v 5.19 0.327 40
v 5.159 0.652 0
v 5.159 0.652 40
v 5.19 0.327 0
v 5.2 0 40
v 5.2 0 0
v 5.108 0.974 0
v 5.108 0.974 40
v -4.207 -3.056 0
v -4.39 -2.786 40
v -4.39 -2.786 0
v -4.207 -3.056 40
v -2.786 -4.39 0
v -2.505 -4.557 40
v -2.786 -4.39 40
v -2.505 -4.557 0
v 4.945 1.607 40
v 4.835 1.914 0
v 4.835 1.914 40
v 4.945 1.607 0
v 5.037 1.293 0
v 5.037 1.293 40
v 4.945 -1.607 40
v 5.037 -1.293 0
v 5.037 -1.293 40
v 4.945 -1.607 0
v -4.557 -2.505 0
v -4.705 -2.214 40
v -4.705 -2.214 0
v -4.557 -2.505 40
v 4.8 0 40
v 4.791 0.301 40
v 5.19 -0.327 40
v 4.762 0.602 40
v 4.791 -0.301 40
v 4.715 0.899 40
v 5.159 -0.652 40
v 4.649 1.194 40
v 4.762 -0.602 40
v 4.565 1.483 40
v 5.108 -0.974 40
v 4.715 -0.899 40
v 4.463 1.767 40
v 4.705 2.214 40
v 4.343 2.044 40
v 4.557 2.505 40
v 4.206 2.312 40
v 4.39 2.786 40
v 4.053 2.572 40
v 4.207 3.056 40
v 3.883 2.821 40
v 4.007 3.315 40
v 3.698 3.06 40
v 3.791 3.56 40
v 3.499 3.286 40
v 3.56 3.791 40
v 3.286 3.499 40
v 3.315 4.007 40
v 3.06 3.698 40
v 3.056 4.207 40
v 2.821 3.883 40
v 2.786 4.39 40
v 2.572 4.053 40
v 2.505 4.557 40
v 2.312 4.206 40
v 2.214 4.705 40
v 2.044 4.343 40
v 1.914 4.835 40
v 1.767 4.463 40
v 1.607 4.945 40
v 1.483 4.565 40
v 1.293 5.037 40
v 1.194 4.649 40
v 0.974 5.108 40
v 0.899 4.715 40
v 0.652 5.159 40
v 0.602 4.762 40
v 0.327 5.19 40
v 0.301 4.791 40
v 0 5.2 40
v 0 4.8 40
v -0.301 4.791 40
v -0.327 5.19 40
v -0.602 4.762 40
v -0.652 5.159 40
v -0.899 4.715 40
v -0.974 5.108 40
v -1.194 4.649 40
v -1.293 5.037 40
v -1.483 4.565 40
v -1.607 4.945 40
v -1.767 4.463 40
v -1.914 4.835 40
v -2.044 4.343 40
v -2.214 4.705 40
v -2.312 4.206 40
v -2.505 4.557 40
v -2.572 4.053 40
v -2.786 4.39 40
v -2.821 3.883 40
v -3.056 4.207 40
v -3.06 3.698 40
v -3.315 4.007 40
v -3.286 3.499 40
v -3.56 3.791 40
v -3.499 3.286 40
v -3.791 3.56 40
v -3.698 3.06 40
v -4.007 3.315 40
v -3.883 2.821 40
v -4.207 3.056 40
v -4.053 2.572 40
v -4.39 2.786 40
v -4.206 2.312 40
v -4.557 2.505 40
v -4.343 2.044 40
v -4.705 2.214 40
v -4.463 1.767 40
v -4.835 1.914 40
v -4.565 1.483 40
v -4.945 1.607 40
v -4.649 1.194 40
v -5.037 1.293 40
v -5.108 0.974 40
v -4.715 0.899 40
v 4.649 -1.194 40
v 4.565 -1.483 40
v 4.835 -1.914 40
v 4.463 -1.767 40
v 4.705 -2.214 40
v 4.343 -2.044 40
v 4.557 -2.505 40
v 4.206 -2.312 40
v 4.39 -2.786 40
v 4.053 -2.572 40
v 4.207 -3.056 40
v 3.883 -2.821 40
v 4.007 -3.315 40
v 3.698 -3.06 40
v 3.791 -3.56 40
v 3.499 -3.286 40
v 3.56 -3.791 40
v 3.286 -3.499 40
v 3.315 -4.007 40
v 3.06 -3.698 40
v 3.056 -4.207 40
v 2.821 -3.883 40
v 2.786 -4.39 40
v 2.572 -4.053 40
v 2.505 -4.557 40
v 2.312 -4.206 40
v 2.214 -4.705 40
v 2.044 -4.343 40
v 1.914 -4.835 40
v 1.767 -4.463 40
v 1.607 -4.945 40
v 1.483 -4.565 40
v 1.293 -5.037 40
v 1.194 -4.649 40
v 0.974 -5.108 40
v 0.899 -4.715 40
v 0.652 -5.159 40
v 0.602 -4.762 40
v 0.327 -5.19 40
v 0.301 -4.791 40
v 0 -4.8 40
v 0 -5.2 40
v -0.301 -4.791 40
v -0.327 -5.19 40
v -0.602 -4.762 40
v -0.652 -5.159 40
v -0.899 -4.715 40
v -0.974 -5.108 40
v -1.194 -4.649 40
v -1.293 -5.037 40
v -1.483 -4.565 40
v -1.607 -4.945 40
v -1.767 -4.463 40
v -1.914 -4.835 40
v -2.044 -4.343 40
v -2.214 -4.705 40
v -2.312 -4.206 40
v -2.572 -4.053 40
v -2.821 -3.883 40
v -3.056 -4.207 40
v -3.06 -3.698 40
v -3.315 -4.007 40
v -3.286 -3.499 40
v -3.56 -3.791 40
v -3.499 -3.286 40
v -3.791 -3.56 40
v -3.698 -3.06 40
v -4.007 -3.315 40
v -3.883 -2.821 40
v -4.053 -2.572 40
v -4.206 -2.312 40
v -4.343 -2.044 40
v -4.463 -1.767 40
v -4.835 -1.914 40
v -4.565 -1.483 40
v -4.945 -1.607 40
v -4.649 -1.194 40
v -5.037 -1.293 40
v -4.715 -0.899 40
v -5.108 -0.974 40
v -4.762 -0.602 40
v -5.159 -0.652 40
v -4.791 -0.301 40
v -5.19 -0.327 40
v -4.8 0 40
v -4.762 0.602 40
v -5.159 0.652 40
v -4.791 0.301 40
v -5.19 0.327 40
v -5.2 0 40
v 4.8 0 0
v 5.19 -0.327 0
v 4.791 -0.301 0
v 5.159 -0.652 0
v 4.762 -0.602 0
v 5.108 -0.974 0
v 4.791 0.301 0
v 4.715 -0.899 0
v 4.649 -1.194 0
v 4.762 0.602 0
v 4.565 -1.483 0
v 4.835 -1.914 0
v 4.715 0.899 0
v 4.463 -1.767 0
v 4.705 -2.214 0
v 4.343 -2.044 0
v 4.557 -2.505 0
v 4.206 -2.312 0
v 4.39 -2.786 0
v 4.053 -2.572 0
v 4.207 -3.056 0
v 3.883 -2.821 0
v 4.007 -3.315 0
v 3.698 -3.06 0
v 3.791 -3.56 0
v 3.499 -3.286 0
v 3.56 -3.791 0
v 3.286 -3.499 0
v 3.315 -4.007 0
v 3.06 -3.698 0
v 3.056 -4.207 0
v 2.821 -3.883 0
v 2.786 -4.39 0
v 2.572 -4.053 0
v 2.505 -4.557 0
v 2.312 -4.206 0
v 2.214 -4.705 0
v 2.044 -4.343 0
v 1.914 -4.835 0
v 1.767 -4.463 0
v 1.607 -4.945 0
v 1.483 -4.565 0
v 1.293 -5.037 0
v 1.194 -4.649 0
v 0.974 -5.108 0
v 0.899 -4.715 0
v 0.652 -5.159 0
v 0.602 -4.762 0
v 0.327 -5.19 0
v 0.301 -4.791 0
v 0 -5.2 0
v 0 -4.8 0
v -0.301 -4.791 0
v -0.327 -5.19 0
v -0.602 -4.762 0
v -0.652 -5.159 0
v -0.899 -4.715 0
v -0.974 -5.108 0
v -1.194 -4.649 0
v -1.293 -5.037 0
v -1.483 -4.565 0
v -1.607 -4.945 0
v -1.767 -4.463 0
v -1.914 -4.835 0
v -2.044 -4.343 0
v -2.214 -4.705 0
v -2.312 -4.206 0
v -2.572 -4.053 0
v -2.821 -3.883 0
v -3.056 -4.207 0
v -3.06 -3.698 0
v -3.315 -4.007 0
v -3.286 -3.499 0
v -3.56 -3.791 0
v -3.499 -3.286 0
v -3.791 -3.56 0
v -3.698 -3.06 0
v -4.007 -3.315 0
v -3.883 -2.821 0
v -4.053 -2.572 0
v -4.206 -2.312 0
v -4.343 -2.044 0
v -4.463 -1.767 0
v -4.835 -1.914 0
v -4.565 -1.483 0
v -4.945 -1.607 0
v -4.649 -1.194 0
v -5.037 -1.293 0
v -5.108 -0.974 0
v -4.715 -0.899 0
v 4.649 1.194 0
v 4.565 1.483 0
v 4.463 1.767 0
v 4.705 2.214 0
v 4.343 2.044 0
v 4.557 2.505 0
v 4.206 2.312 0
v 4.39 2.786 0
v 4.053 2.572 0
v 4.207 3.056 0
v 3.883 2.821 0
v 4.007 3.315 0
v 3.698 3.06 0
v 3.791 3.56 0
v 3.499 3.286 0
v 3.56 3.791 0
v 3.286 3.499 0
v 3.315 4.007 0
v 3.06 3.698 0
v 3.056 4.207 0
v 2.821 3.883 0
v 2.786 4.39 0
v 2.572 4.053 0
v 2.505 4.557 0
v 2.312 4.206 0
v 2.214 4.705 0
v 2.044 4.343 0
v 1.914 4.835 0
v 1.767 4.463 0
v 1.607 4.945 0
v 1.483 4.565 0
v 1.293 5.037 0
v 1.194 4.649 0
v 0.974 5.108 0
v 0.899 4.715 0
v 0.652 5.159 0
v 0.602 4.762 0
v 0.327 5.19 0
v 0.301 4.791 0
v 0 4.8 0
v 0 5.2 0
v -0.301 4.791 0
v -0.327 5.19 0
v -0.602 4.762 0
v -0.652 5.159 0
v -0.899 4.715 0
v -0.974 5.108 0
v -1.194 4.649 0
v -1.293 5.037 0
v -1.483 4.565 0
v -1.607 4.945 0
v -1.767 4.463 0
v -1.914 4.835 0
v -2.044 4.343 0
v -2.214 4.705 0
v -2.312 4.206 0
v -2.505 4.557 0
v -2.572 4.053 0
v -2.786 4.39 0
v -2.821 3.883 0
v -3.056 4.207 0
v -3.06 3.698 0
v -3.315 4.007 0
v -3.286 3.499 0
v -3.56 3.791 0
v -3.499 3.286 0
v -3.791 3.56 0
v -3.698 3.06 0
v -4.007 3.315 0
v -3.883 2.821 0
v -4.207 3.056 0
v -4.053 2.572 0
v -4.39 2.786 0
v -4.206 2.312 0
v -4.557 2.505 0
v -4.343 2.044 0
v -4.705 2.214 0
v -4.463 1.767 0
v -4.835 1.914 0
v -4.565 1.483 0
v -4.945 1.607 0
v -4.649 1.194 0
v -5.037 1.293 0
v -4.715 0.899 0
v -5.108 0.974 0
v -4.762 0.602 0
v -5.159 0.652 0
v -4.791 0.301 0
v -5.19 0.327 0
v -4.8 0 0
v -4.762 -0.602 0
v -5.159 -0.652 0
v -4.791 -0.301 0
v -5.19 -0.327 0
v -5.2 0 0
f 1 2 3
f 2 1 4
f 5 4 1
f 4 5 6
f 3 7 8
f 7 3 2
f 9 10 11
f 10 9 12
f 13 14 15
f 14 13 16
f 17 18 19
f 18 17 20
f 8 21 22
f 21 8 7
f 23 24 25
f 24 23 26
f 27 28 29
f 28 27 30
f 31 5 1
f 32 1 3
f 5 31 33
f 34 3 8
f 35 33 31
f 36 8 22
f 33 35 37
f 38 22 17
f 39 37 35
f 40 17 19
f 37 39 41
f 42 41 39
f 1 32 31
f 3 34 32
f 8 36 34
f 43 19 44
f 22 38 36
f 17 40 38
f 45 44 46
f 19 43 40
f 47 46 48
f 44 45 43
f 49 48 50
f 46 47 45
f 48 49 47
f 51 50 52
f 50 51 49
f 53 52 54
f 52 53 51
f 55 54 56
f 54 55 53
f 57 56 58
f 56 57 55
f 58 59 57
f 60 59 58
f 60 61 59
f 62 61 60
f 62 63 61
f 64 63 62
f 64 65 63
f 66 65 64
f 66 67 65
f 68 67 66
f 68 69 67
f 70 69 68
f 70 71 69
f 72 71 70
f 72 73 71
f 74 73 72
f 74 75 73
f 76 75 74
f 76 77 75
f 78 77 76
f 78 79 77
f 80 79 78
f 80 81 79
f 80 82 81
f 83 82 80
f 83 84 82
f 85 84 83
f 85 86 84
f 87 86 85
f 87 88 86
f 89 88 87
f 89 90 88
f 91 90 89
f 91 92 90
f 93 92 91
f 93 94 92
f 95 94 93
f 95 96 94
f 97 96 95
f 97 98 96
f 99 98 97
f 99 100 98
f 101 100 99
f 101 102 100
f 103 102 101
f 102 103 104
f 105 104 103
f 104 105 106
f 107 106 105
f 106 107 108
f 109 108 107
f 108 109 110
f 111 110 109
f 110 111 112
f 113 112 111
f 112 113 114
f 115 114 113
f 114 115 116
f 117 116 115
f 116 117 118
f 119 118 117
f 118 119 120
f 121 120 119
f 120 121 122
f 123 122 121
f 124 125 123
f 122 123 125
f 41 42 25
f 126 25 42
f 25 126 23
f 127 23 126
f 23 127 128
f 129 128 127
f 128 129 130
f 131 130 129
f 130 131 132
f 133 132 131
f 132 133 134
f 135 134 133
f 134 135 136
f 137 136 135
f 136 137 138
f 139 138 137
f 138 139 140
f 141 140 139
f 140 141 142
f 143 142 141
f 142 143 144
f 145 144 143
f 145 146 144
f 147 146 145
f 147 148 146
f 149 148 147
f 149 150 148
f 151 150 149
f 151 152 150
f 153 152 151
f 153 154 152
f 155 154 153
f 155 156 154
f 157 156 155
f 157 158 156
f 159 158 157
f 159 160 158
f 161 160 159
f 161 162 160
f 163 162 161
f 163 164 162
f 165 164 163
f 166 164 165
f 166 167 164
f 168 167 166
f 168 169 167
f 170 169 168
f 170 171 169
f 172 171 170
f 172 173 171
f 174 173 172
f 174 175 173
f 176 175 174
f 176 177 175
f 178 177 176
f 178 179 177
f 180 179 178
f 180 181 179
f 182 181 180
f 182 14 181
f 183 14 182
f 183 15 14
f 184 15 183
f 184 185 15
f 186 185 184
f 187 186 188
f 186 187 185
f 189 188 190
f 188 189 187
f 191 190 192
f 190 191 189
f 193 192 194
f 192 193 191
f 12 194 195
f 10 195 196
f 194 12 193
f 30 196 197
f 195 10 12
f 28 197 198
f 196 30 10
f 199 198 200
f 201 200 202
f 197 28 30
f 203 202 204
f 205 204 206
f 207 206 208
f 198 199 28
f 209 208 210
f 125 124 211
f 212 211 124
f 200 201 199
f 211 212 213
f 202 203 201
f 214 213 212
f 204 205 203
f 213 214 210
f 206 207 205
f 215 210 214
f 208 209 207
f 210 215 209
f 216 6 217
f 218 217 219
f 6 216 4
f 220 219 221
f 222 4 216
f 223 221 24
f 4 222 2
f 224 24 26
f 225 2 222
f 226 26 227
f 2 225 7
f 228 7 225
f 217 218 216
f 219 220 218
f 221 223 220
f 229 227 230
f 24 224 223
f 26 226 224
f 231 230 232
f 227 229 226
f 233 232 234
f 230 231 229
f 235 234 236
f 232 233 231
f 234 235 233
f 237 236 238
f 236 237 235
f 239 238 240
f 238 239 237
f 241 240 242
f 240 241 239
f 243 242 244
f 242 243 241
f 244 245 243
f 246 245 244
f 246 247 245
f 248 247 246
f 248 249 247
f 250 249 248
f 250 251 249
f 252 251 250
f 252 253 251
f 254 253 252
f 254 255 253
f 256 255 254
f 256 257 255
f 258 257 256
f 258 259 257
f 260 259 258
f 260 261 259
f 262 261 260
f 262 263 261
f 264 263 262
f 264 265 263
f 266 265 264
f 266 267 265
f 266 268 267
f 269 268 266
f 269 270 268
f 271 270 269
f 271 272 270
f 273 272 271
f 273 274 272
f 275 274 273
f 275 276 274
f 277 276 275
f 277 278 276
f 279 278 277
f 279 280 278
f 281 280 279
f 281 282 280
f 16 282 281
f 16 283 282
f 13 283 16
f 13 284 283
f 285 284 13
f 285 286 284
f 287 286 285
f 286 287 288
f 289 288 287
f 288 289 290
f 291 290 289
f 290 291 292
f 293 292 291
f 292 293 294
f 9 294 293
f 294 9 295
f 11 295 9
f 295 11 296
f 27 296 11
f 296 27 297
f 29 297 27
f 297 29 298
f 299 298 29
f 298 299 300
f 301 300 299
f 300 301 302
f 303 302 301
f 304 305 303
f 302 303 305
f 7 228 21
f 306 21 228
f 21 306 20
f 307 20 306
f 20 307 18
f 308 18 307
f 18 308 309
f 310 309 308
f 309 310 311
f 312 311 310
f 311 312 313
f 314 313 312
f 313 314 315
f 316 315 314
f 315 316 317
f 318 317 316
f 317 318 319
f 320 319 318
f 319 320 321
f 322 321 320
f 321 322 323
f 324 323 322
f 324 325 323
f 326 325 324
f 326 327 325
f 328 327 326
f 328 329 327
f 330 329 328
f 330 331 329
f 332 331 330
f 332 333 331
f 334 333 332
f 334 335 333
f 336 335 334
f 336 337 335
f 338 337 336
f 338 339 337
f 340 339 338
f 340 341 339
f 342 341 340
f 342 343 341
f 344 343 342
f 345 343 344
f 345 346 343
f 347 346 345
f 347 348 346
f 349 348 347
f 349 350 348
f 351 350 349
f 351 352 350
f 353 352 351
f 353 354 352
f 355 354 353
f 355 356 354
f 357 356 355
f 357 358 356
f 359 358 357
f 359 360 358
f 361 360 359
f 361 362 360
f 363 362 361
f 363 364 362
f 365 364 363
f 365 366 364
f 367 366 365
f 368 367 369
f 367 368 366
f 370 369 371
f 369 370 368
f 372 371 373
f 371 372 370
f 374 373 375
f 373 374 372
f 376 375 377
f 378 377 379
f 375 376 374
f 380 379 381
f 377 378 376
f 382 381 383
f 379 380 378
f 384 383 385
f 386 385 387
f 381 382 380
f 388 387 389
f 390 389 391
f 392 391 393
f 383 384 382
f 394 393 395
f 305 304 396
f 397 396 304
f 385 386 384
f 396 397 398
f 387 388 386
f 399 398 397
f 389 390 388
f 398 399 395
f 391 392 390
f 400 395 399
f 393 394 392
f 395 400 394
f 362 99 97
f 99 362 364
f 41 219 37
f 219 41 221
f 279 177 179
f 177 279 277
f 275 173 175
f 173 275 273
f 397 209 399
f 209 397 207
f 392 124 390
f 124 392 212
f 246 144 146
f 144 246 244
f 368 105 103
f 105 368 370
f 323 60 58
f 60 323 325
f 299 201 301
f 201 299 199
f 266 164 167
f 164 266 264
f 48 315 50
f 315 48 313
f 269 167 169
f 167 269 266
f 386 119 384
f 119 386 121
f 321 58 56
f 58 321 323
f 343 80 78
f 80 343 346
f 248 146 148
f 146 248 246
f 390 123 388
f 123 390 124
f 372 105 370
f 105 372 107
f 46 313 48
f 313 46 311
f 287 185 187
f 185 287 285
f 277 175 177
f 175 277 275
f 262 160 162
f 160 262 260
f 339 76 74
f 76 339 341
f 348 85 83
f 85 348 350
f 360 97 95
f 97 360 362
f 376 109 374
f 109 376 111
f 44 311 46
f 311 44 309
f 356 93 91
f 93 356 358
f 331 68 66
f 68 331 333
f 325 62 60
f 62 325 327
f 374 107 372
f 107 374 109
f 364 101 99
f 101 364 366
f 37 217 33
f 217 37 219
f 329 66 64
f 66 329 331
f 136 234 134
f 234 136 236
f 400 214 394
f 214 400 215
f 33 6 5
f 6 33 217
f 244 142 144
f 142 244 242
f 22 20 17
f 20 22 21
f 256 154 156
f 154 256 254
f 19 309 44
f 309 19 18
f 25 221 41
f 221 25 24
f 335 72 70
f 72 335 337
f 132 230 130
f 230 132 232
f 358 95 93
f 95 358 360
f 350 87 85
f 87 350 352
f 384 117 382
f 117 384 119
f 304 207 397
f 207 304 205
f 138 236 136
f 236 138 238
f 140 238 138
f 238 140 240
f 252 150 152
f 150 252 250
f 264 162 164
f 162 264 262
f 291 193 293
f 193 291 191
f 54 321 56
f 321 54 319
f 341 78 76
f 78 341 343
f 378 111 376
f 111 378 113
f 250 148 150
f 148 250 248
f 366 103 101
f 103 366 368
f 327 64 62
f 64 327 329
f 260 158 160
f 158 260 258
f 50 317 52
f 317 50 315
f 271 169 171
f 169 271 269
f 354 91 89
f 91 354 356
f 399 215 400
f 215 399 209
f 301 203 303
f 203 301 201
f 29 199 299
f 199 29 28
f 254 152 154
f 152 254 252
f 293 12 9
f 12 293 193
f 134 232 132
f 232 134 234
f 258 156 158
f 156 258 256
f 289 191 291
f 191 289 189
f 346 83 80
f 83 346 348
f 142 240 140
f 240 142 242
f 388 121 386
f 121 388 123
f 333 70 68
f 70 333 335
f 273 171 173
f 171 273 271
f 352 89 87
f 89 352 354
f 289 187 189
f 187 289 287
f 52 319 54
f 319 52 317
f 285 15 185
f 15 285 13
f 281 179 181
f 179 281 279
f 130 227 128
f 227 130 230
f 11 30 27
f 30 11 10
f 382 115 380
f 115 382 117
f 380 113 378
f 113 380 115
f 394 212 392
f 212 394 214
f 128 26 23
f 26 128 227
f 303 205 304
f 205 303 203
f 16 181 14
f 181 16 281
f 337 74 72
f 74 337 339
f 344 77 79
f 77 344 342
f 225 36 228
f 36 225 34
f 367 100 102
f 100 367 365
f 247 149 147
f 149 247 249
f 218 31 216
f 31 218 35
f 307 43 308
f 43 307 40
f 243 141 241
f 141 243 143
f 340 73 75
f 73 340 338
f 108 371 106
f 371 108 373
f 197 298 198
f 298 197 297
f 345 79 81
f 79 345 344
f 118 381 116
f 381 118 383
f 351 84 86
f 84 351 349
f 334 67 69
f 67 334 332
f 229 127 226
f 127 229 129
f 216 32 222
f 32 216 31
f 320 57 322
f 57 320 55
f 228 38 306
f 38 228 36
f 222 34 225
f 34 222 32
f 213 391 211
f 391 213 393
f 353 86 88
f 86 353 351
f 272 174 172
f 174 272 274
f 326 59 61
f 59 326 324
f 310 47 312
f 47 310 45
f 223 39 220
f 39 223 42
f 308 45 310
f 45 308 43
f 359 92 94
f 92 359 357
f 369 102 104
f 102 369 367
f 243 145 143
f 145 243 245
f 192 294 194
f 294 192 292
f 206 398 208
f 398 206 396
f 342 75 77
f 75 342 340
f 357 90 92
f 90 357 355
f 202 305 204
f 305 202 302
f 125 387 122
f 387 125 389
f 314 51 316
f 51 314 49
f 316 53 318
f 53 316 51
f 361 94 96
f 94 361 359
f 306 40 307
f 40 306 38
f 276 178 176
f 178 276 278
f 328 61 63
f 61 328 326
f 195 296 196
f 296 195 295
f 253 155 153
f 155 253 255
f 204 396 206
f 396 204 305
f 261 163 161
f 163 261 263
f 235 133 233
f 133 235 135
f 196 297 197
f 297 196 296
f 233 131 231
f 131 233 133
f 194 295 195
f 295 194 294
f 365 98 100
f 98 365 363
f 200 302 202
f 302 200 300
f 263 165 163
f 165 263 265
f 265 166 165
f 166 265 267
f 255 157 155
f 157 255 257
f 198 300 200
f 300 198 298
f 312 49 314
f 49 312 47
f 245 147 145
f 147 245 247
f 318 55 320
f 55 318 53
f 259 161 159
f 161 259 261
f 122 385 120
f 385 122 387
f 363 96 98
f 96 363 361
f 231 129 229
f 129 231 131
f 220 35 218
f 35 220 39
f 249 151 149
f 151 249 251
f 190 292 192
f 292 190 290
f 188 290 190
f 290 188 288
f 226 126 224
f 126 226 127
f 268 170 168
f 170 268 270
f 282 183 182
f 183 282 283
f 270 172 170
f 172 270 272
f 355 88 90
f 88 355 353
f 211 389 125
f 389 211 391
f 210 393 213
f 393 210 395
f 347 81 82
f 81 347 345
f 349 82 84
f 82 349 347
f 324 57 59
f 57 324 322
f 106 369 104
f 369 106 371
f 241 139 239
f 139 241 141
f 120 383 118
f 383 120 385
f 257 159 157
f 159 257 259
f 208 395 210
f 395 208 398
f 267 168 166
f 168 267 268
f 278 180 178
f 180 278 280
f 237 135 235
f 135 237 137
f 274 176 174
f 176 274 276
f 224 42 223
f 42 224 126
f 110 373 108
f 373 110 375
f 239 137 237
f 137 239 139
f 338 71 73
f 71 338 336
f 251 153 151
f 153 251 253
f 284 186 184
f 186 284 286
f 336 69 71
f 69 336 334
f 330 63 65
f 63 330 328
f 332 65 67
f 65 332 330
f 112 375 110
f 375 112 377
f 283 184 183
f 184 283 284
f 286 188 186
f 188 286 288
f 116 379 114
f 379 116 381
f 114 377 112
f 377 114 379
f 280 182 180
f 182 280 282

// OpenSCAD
//in milimeters
/*
translate([0,47,0]) cube([76,28,3]);//podlozka
difference(){
    translate([0,45,0])cube([40,32,26]); //hlavni kostka
    translate([20,60,72]) rotate ([90,0,0]) cylinder (h = 40, r=50, center = true, $fn=100); //vyrezavaci cylinder
}
*/
translate([0,0,20]){
difference(){
//vnejsi trubka
cylinder(h=40,r=5.2,center=true,$fn=100);
//vnitrni trubka odectena
cylinder(h=41,r=4.8,center=true,$fn=100);
}
}
